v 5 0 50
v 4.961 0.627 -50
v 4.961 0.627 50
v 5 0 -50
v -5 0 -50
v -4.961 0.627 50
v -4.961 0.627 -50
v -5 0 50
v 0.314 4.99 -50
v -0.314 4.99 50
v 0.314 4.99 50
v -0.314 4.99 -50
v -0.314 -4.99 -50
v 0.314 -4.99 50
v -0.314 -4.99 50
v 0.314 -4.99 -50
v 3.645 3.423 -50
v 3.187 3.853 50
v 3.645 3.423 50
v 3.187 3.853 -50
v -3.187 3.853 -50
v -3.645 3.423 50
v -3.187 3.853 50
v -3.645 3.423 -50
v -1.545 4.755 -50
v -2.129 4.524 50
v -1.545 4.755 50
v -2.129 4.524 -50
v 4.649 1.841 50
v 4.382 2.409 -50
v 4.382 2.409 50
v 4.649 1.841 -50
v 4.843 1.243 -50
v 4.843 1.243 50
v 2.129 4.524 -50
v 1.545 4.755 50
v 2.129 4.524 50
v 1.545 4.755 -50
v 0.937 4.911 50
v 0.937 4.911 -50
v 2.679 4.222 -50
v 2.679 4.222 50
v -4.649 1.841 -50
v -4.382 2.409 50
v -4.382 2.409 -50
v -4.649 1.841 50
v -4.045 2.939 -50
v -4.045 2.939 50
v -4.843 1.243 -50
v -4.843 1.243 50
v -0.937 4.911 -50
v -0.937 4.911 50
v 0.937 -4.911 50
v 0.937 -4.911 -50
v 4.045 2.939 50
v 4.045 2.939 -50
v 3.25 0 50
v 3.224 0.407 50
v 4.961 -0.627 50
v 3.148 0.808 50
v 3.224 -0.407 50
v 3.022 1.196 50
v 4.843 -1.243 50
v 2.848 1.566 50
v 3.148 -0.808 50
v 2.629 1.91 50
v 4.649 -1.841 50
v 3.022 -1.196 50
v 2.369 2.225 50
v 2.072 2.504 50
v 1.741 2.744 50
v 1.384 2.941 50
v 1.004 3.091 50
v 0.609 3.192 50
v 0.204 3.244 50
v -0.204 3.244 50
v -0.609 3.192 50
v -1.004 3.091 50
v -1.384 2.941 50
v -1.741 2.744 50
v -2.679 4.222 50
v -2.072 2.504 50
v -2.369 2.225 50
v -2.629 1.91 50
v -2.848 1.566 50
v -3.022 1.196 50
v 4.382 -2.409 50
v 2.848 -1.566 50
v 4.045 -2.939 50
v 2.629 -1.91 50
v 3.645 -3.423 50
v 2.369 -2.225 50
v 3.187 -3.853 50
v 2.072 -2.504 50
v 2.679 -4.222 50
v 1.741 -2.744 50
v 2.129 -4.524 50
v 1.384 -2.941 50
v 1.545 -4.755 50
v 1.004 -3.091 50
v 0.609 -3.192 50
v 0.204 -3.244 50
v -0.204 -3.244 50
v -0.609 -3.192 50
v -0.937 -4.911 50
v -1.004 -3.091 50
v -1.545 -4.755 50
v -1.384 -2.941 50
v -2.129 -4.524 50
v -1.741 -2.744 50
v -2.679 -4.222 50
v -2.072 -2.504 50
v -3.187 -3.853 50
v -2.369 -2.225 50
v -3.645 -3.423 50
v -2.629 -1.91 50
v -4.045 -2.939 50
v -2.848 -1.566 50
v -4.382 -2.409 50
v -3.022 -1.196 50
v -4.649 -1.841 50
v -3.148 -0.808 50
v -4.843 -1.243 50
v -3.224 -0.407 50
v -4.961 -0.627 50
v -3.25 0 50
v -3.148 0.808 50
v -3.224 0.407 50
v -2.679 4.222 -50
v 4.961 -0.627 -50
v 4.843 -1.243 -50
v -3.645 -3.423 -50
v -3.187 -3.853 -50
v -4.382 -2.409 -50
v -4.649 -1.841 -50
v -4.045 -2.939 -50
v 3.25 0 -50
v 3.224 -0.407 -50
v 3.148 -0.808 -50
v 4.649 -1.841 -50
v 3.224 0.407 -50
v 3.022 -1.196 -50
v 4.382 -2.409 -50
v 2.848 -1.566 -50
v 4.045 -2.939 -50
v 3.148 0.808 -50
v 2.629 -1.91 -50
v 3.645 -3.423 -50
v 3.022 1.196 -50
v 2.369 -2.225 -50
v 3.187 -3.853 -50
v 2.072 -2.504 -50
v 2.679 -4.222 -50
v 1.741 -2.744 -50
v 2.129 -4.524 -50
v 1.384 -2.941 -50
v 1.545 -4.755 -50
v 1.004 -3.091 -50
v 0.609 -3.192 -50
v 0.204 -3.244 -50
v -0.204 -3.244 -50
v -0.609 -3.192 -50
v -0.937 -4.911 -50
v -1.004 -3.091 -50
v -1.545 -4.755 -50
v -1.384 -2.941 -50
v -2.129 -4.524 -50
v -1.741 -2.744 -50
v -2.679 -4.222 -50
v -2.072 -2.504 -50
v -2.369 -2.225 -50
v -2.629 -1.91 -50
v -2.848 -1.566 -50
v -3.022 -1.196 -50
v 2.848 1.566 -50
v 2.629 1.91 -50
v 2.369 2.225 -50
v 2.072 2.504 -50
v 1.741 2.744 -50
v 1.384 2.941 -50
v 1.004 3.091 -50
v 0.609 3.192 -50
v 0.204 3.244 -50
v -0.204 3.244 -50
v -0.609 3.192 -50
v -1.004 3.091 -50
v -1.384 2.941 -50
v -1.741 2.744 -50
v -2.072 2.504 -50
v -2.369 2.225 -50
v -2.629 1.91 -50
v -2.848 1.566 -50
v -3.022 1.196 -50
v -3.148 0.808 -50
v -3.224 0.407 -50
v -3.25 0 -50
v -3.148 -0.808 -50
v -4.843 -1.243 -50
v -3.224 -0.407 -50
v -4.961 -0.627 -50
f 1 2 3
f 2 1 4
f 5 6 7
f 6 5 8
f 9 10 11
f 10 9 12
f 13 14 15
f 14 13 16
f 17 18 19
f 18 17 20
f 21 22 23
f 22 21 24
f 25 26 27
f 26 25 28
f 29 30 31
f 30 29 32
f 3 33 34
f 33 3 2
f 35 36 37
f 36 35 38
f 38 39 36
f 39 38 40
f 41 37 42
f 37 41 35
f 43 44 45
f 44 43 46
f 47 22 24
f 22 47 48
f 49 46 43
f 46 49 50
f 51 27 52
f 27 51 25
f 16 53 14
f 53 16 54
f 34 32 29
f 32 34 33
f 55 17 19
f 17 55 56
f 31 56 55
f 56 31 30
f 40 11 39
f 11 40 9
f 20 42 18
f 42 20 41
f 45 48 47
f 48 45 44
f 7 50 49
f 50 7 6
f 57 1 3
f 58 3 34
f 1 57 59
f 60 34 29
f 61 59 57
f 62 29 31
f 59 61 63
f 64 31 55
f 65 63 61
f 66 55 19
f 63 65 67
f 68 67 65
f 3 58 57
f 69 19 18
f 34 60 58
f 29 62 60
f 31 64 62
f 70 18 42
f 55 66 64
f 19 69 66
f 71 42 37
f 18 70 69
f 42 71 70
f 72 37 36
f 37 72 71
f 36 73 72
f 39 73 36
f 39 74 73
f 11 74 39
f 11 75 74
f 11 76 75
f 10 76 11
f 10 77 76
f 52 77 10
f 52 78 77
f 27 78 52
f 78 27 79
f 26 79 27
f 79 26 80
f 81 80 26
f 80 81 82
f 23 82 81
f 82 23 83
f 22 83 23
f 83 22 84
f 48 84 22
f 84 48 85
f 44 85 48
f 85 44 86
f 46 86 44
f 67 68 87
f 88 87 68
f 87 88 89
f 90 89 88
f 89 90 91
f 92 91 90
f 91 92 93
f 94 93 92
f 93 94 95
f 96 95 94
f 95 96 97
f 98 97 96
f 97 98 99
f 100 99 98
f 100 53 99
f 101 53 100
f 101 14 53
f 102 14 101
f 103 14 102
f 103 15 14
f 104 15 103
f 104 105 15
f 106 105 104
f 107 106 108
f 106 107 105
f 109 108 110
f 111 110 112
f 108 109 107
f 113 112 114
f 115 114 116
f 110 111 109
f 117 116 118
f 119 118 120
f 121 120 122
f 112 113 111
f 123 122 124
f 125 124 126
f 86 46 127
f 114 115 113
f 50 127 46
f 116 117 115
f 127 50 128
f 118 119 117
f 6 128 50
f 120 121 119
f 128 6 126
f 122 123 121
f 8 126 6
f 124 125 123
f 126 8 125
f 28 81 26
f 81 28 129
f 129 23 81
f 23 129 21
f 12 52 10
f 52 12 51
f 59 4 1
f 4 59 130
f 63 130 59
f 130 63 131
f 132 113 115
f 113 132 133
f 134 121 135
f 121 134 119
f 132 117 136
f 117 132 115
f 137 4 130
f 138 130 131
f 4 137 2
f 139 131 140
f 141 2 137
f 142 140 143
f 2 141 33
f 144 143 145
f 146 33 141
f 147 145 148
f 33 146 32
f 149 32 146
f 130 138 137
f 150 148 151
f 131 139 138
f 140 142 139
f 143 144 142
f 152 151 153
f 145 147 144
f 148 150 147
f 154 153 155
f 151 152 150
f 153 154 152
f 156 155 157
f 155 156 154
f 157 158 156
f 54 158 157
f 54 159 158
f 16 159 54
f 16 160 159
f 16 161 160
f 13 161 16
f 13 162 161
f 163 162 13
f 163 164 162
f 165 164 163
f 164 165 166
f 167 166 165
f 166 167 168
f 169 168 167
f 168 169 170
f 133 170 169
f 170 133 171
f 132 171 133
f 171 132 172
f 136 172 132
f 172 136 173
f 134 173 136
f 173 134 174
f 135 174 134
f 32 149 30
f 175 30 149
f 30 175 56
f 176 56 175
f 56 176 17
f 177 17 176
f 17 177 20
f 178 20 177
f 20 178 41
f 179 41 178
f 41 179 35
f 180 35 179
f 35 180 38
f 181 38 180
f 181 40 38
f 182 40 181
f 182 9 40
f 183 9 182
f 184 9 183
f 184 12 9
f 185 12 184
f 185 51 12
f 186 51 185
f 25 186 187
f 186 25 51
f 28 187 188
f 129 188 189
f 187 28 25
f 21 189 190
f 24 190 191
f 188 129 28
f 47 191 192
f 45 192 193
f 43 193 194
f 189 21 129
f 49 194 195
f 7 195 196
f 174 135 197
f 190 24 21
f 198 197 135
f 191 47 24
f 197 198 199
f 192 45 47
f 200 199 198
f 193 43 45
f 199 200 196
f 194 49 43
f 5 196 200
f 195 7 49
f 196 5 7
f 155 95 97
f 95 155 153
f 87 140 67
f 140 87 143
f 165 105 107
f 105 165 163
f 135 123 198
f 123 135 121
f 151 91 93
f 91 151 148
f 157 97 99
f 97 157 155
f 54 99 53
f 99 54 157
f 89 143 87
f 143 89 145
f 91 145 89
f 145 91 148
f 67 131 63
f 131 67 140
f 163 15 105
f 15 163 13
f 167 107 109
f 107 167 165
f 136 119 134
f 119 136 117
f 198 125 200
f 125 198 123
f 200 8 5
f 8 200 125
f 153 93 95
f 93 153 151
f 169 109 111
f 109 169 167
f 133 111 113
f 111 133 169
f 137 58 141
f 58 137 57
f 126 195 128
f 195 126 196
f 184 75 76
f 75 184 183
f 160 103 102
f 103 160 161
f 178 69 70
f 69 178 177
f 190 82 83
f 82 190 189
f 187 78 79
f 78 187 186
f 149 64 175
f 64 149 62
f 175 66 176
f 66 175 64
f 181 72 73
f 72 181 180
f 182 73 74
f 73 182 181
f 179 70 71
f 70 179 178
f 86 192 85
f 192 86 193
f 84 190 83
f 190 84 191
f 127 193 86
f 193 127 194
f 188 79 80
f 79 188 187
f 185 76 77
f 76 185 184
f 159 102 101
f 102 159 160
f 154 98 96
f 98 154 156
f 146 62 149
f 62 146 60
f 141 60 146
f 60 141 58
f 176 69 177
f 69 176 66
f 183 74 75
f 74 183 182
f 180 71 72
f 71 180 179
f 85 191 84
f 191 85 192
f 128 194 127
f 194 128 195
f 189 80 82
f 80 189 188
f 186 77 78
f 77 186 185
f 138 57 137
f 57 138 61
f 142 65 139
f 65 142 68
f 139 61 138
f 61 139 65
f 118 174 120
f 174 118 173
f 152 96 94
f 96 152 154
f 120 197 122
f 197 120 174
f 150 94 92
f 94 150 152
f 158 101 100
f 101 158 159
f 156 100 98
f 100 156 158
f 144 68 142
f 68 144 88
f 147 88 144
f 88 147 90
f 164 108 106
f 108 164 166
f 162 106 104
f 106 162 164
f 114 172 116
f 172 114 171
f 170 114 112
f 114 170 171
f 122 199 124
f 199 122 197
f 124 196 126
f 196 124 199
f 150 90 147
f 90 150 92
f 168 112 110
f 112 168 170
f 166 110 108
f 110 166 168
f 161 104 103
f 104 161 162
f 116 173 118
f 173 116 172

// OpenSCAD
$fn = 50;


difference() {
	union() {
		translate(v = [0, 0, -50.0000000000]) {
			cylinder(h = 100, r = 5.0000000000);
		}
	}
	union() {
		translate(v = [0, 0, -100.0000000000]) {
			cylinder(h = 200, r = 3.2500000000);
		}
	}
}
